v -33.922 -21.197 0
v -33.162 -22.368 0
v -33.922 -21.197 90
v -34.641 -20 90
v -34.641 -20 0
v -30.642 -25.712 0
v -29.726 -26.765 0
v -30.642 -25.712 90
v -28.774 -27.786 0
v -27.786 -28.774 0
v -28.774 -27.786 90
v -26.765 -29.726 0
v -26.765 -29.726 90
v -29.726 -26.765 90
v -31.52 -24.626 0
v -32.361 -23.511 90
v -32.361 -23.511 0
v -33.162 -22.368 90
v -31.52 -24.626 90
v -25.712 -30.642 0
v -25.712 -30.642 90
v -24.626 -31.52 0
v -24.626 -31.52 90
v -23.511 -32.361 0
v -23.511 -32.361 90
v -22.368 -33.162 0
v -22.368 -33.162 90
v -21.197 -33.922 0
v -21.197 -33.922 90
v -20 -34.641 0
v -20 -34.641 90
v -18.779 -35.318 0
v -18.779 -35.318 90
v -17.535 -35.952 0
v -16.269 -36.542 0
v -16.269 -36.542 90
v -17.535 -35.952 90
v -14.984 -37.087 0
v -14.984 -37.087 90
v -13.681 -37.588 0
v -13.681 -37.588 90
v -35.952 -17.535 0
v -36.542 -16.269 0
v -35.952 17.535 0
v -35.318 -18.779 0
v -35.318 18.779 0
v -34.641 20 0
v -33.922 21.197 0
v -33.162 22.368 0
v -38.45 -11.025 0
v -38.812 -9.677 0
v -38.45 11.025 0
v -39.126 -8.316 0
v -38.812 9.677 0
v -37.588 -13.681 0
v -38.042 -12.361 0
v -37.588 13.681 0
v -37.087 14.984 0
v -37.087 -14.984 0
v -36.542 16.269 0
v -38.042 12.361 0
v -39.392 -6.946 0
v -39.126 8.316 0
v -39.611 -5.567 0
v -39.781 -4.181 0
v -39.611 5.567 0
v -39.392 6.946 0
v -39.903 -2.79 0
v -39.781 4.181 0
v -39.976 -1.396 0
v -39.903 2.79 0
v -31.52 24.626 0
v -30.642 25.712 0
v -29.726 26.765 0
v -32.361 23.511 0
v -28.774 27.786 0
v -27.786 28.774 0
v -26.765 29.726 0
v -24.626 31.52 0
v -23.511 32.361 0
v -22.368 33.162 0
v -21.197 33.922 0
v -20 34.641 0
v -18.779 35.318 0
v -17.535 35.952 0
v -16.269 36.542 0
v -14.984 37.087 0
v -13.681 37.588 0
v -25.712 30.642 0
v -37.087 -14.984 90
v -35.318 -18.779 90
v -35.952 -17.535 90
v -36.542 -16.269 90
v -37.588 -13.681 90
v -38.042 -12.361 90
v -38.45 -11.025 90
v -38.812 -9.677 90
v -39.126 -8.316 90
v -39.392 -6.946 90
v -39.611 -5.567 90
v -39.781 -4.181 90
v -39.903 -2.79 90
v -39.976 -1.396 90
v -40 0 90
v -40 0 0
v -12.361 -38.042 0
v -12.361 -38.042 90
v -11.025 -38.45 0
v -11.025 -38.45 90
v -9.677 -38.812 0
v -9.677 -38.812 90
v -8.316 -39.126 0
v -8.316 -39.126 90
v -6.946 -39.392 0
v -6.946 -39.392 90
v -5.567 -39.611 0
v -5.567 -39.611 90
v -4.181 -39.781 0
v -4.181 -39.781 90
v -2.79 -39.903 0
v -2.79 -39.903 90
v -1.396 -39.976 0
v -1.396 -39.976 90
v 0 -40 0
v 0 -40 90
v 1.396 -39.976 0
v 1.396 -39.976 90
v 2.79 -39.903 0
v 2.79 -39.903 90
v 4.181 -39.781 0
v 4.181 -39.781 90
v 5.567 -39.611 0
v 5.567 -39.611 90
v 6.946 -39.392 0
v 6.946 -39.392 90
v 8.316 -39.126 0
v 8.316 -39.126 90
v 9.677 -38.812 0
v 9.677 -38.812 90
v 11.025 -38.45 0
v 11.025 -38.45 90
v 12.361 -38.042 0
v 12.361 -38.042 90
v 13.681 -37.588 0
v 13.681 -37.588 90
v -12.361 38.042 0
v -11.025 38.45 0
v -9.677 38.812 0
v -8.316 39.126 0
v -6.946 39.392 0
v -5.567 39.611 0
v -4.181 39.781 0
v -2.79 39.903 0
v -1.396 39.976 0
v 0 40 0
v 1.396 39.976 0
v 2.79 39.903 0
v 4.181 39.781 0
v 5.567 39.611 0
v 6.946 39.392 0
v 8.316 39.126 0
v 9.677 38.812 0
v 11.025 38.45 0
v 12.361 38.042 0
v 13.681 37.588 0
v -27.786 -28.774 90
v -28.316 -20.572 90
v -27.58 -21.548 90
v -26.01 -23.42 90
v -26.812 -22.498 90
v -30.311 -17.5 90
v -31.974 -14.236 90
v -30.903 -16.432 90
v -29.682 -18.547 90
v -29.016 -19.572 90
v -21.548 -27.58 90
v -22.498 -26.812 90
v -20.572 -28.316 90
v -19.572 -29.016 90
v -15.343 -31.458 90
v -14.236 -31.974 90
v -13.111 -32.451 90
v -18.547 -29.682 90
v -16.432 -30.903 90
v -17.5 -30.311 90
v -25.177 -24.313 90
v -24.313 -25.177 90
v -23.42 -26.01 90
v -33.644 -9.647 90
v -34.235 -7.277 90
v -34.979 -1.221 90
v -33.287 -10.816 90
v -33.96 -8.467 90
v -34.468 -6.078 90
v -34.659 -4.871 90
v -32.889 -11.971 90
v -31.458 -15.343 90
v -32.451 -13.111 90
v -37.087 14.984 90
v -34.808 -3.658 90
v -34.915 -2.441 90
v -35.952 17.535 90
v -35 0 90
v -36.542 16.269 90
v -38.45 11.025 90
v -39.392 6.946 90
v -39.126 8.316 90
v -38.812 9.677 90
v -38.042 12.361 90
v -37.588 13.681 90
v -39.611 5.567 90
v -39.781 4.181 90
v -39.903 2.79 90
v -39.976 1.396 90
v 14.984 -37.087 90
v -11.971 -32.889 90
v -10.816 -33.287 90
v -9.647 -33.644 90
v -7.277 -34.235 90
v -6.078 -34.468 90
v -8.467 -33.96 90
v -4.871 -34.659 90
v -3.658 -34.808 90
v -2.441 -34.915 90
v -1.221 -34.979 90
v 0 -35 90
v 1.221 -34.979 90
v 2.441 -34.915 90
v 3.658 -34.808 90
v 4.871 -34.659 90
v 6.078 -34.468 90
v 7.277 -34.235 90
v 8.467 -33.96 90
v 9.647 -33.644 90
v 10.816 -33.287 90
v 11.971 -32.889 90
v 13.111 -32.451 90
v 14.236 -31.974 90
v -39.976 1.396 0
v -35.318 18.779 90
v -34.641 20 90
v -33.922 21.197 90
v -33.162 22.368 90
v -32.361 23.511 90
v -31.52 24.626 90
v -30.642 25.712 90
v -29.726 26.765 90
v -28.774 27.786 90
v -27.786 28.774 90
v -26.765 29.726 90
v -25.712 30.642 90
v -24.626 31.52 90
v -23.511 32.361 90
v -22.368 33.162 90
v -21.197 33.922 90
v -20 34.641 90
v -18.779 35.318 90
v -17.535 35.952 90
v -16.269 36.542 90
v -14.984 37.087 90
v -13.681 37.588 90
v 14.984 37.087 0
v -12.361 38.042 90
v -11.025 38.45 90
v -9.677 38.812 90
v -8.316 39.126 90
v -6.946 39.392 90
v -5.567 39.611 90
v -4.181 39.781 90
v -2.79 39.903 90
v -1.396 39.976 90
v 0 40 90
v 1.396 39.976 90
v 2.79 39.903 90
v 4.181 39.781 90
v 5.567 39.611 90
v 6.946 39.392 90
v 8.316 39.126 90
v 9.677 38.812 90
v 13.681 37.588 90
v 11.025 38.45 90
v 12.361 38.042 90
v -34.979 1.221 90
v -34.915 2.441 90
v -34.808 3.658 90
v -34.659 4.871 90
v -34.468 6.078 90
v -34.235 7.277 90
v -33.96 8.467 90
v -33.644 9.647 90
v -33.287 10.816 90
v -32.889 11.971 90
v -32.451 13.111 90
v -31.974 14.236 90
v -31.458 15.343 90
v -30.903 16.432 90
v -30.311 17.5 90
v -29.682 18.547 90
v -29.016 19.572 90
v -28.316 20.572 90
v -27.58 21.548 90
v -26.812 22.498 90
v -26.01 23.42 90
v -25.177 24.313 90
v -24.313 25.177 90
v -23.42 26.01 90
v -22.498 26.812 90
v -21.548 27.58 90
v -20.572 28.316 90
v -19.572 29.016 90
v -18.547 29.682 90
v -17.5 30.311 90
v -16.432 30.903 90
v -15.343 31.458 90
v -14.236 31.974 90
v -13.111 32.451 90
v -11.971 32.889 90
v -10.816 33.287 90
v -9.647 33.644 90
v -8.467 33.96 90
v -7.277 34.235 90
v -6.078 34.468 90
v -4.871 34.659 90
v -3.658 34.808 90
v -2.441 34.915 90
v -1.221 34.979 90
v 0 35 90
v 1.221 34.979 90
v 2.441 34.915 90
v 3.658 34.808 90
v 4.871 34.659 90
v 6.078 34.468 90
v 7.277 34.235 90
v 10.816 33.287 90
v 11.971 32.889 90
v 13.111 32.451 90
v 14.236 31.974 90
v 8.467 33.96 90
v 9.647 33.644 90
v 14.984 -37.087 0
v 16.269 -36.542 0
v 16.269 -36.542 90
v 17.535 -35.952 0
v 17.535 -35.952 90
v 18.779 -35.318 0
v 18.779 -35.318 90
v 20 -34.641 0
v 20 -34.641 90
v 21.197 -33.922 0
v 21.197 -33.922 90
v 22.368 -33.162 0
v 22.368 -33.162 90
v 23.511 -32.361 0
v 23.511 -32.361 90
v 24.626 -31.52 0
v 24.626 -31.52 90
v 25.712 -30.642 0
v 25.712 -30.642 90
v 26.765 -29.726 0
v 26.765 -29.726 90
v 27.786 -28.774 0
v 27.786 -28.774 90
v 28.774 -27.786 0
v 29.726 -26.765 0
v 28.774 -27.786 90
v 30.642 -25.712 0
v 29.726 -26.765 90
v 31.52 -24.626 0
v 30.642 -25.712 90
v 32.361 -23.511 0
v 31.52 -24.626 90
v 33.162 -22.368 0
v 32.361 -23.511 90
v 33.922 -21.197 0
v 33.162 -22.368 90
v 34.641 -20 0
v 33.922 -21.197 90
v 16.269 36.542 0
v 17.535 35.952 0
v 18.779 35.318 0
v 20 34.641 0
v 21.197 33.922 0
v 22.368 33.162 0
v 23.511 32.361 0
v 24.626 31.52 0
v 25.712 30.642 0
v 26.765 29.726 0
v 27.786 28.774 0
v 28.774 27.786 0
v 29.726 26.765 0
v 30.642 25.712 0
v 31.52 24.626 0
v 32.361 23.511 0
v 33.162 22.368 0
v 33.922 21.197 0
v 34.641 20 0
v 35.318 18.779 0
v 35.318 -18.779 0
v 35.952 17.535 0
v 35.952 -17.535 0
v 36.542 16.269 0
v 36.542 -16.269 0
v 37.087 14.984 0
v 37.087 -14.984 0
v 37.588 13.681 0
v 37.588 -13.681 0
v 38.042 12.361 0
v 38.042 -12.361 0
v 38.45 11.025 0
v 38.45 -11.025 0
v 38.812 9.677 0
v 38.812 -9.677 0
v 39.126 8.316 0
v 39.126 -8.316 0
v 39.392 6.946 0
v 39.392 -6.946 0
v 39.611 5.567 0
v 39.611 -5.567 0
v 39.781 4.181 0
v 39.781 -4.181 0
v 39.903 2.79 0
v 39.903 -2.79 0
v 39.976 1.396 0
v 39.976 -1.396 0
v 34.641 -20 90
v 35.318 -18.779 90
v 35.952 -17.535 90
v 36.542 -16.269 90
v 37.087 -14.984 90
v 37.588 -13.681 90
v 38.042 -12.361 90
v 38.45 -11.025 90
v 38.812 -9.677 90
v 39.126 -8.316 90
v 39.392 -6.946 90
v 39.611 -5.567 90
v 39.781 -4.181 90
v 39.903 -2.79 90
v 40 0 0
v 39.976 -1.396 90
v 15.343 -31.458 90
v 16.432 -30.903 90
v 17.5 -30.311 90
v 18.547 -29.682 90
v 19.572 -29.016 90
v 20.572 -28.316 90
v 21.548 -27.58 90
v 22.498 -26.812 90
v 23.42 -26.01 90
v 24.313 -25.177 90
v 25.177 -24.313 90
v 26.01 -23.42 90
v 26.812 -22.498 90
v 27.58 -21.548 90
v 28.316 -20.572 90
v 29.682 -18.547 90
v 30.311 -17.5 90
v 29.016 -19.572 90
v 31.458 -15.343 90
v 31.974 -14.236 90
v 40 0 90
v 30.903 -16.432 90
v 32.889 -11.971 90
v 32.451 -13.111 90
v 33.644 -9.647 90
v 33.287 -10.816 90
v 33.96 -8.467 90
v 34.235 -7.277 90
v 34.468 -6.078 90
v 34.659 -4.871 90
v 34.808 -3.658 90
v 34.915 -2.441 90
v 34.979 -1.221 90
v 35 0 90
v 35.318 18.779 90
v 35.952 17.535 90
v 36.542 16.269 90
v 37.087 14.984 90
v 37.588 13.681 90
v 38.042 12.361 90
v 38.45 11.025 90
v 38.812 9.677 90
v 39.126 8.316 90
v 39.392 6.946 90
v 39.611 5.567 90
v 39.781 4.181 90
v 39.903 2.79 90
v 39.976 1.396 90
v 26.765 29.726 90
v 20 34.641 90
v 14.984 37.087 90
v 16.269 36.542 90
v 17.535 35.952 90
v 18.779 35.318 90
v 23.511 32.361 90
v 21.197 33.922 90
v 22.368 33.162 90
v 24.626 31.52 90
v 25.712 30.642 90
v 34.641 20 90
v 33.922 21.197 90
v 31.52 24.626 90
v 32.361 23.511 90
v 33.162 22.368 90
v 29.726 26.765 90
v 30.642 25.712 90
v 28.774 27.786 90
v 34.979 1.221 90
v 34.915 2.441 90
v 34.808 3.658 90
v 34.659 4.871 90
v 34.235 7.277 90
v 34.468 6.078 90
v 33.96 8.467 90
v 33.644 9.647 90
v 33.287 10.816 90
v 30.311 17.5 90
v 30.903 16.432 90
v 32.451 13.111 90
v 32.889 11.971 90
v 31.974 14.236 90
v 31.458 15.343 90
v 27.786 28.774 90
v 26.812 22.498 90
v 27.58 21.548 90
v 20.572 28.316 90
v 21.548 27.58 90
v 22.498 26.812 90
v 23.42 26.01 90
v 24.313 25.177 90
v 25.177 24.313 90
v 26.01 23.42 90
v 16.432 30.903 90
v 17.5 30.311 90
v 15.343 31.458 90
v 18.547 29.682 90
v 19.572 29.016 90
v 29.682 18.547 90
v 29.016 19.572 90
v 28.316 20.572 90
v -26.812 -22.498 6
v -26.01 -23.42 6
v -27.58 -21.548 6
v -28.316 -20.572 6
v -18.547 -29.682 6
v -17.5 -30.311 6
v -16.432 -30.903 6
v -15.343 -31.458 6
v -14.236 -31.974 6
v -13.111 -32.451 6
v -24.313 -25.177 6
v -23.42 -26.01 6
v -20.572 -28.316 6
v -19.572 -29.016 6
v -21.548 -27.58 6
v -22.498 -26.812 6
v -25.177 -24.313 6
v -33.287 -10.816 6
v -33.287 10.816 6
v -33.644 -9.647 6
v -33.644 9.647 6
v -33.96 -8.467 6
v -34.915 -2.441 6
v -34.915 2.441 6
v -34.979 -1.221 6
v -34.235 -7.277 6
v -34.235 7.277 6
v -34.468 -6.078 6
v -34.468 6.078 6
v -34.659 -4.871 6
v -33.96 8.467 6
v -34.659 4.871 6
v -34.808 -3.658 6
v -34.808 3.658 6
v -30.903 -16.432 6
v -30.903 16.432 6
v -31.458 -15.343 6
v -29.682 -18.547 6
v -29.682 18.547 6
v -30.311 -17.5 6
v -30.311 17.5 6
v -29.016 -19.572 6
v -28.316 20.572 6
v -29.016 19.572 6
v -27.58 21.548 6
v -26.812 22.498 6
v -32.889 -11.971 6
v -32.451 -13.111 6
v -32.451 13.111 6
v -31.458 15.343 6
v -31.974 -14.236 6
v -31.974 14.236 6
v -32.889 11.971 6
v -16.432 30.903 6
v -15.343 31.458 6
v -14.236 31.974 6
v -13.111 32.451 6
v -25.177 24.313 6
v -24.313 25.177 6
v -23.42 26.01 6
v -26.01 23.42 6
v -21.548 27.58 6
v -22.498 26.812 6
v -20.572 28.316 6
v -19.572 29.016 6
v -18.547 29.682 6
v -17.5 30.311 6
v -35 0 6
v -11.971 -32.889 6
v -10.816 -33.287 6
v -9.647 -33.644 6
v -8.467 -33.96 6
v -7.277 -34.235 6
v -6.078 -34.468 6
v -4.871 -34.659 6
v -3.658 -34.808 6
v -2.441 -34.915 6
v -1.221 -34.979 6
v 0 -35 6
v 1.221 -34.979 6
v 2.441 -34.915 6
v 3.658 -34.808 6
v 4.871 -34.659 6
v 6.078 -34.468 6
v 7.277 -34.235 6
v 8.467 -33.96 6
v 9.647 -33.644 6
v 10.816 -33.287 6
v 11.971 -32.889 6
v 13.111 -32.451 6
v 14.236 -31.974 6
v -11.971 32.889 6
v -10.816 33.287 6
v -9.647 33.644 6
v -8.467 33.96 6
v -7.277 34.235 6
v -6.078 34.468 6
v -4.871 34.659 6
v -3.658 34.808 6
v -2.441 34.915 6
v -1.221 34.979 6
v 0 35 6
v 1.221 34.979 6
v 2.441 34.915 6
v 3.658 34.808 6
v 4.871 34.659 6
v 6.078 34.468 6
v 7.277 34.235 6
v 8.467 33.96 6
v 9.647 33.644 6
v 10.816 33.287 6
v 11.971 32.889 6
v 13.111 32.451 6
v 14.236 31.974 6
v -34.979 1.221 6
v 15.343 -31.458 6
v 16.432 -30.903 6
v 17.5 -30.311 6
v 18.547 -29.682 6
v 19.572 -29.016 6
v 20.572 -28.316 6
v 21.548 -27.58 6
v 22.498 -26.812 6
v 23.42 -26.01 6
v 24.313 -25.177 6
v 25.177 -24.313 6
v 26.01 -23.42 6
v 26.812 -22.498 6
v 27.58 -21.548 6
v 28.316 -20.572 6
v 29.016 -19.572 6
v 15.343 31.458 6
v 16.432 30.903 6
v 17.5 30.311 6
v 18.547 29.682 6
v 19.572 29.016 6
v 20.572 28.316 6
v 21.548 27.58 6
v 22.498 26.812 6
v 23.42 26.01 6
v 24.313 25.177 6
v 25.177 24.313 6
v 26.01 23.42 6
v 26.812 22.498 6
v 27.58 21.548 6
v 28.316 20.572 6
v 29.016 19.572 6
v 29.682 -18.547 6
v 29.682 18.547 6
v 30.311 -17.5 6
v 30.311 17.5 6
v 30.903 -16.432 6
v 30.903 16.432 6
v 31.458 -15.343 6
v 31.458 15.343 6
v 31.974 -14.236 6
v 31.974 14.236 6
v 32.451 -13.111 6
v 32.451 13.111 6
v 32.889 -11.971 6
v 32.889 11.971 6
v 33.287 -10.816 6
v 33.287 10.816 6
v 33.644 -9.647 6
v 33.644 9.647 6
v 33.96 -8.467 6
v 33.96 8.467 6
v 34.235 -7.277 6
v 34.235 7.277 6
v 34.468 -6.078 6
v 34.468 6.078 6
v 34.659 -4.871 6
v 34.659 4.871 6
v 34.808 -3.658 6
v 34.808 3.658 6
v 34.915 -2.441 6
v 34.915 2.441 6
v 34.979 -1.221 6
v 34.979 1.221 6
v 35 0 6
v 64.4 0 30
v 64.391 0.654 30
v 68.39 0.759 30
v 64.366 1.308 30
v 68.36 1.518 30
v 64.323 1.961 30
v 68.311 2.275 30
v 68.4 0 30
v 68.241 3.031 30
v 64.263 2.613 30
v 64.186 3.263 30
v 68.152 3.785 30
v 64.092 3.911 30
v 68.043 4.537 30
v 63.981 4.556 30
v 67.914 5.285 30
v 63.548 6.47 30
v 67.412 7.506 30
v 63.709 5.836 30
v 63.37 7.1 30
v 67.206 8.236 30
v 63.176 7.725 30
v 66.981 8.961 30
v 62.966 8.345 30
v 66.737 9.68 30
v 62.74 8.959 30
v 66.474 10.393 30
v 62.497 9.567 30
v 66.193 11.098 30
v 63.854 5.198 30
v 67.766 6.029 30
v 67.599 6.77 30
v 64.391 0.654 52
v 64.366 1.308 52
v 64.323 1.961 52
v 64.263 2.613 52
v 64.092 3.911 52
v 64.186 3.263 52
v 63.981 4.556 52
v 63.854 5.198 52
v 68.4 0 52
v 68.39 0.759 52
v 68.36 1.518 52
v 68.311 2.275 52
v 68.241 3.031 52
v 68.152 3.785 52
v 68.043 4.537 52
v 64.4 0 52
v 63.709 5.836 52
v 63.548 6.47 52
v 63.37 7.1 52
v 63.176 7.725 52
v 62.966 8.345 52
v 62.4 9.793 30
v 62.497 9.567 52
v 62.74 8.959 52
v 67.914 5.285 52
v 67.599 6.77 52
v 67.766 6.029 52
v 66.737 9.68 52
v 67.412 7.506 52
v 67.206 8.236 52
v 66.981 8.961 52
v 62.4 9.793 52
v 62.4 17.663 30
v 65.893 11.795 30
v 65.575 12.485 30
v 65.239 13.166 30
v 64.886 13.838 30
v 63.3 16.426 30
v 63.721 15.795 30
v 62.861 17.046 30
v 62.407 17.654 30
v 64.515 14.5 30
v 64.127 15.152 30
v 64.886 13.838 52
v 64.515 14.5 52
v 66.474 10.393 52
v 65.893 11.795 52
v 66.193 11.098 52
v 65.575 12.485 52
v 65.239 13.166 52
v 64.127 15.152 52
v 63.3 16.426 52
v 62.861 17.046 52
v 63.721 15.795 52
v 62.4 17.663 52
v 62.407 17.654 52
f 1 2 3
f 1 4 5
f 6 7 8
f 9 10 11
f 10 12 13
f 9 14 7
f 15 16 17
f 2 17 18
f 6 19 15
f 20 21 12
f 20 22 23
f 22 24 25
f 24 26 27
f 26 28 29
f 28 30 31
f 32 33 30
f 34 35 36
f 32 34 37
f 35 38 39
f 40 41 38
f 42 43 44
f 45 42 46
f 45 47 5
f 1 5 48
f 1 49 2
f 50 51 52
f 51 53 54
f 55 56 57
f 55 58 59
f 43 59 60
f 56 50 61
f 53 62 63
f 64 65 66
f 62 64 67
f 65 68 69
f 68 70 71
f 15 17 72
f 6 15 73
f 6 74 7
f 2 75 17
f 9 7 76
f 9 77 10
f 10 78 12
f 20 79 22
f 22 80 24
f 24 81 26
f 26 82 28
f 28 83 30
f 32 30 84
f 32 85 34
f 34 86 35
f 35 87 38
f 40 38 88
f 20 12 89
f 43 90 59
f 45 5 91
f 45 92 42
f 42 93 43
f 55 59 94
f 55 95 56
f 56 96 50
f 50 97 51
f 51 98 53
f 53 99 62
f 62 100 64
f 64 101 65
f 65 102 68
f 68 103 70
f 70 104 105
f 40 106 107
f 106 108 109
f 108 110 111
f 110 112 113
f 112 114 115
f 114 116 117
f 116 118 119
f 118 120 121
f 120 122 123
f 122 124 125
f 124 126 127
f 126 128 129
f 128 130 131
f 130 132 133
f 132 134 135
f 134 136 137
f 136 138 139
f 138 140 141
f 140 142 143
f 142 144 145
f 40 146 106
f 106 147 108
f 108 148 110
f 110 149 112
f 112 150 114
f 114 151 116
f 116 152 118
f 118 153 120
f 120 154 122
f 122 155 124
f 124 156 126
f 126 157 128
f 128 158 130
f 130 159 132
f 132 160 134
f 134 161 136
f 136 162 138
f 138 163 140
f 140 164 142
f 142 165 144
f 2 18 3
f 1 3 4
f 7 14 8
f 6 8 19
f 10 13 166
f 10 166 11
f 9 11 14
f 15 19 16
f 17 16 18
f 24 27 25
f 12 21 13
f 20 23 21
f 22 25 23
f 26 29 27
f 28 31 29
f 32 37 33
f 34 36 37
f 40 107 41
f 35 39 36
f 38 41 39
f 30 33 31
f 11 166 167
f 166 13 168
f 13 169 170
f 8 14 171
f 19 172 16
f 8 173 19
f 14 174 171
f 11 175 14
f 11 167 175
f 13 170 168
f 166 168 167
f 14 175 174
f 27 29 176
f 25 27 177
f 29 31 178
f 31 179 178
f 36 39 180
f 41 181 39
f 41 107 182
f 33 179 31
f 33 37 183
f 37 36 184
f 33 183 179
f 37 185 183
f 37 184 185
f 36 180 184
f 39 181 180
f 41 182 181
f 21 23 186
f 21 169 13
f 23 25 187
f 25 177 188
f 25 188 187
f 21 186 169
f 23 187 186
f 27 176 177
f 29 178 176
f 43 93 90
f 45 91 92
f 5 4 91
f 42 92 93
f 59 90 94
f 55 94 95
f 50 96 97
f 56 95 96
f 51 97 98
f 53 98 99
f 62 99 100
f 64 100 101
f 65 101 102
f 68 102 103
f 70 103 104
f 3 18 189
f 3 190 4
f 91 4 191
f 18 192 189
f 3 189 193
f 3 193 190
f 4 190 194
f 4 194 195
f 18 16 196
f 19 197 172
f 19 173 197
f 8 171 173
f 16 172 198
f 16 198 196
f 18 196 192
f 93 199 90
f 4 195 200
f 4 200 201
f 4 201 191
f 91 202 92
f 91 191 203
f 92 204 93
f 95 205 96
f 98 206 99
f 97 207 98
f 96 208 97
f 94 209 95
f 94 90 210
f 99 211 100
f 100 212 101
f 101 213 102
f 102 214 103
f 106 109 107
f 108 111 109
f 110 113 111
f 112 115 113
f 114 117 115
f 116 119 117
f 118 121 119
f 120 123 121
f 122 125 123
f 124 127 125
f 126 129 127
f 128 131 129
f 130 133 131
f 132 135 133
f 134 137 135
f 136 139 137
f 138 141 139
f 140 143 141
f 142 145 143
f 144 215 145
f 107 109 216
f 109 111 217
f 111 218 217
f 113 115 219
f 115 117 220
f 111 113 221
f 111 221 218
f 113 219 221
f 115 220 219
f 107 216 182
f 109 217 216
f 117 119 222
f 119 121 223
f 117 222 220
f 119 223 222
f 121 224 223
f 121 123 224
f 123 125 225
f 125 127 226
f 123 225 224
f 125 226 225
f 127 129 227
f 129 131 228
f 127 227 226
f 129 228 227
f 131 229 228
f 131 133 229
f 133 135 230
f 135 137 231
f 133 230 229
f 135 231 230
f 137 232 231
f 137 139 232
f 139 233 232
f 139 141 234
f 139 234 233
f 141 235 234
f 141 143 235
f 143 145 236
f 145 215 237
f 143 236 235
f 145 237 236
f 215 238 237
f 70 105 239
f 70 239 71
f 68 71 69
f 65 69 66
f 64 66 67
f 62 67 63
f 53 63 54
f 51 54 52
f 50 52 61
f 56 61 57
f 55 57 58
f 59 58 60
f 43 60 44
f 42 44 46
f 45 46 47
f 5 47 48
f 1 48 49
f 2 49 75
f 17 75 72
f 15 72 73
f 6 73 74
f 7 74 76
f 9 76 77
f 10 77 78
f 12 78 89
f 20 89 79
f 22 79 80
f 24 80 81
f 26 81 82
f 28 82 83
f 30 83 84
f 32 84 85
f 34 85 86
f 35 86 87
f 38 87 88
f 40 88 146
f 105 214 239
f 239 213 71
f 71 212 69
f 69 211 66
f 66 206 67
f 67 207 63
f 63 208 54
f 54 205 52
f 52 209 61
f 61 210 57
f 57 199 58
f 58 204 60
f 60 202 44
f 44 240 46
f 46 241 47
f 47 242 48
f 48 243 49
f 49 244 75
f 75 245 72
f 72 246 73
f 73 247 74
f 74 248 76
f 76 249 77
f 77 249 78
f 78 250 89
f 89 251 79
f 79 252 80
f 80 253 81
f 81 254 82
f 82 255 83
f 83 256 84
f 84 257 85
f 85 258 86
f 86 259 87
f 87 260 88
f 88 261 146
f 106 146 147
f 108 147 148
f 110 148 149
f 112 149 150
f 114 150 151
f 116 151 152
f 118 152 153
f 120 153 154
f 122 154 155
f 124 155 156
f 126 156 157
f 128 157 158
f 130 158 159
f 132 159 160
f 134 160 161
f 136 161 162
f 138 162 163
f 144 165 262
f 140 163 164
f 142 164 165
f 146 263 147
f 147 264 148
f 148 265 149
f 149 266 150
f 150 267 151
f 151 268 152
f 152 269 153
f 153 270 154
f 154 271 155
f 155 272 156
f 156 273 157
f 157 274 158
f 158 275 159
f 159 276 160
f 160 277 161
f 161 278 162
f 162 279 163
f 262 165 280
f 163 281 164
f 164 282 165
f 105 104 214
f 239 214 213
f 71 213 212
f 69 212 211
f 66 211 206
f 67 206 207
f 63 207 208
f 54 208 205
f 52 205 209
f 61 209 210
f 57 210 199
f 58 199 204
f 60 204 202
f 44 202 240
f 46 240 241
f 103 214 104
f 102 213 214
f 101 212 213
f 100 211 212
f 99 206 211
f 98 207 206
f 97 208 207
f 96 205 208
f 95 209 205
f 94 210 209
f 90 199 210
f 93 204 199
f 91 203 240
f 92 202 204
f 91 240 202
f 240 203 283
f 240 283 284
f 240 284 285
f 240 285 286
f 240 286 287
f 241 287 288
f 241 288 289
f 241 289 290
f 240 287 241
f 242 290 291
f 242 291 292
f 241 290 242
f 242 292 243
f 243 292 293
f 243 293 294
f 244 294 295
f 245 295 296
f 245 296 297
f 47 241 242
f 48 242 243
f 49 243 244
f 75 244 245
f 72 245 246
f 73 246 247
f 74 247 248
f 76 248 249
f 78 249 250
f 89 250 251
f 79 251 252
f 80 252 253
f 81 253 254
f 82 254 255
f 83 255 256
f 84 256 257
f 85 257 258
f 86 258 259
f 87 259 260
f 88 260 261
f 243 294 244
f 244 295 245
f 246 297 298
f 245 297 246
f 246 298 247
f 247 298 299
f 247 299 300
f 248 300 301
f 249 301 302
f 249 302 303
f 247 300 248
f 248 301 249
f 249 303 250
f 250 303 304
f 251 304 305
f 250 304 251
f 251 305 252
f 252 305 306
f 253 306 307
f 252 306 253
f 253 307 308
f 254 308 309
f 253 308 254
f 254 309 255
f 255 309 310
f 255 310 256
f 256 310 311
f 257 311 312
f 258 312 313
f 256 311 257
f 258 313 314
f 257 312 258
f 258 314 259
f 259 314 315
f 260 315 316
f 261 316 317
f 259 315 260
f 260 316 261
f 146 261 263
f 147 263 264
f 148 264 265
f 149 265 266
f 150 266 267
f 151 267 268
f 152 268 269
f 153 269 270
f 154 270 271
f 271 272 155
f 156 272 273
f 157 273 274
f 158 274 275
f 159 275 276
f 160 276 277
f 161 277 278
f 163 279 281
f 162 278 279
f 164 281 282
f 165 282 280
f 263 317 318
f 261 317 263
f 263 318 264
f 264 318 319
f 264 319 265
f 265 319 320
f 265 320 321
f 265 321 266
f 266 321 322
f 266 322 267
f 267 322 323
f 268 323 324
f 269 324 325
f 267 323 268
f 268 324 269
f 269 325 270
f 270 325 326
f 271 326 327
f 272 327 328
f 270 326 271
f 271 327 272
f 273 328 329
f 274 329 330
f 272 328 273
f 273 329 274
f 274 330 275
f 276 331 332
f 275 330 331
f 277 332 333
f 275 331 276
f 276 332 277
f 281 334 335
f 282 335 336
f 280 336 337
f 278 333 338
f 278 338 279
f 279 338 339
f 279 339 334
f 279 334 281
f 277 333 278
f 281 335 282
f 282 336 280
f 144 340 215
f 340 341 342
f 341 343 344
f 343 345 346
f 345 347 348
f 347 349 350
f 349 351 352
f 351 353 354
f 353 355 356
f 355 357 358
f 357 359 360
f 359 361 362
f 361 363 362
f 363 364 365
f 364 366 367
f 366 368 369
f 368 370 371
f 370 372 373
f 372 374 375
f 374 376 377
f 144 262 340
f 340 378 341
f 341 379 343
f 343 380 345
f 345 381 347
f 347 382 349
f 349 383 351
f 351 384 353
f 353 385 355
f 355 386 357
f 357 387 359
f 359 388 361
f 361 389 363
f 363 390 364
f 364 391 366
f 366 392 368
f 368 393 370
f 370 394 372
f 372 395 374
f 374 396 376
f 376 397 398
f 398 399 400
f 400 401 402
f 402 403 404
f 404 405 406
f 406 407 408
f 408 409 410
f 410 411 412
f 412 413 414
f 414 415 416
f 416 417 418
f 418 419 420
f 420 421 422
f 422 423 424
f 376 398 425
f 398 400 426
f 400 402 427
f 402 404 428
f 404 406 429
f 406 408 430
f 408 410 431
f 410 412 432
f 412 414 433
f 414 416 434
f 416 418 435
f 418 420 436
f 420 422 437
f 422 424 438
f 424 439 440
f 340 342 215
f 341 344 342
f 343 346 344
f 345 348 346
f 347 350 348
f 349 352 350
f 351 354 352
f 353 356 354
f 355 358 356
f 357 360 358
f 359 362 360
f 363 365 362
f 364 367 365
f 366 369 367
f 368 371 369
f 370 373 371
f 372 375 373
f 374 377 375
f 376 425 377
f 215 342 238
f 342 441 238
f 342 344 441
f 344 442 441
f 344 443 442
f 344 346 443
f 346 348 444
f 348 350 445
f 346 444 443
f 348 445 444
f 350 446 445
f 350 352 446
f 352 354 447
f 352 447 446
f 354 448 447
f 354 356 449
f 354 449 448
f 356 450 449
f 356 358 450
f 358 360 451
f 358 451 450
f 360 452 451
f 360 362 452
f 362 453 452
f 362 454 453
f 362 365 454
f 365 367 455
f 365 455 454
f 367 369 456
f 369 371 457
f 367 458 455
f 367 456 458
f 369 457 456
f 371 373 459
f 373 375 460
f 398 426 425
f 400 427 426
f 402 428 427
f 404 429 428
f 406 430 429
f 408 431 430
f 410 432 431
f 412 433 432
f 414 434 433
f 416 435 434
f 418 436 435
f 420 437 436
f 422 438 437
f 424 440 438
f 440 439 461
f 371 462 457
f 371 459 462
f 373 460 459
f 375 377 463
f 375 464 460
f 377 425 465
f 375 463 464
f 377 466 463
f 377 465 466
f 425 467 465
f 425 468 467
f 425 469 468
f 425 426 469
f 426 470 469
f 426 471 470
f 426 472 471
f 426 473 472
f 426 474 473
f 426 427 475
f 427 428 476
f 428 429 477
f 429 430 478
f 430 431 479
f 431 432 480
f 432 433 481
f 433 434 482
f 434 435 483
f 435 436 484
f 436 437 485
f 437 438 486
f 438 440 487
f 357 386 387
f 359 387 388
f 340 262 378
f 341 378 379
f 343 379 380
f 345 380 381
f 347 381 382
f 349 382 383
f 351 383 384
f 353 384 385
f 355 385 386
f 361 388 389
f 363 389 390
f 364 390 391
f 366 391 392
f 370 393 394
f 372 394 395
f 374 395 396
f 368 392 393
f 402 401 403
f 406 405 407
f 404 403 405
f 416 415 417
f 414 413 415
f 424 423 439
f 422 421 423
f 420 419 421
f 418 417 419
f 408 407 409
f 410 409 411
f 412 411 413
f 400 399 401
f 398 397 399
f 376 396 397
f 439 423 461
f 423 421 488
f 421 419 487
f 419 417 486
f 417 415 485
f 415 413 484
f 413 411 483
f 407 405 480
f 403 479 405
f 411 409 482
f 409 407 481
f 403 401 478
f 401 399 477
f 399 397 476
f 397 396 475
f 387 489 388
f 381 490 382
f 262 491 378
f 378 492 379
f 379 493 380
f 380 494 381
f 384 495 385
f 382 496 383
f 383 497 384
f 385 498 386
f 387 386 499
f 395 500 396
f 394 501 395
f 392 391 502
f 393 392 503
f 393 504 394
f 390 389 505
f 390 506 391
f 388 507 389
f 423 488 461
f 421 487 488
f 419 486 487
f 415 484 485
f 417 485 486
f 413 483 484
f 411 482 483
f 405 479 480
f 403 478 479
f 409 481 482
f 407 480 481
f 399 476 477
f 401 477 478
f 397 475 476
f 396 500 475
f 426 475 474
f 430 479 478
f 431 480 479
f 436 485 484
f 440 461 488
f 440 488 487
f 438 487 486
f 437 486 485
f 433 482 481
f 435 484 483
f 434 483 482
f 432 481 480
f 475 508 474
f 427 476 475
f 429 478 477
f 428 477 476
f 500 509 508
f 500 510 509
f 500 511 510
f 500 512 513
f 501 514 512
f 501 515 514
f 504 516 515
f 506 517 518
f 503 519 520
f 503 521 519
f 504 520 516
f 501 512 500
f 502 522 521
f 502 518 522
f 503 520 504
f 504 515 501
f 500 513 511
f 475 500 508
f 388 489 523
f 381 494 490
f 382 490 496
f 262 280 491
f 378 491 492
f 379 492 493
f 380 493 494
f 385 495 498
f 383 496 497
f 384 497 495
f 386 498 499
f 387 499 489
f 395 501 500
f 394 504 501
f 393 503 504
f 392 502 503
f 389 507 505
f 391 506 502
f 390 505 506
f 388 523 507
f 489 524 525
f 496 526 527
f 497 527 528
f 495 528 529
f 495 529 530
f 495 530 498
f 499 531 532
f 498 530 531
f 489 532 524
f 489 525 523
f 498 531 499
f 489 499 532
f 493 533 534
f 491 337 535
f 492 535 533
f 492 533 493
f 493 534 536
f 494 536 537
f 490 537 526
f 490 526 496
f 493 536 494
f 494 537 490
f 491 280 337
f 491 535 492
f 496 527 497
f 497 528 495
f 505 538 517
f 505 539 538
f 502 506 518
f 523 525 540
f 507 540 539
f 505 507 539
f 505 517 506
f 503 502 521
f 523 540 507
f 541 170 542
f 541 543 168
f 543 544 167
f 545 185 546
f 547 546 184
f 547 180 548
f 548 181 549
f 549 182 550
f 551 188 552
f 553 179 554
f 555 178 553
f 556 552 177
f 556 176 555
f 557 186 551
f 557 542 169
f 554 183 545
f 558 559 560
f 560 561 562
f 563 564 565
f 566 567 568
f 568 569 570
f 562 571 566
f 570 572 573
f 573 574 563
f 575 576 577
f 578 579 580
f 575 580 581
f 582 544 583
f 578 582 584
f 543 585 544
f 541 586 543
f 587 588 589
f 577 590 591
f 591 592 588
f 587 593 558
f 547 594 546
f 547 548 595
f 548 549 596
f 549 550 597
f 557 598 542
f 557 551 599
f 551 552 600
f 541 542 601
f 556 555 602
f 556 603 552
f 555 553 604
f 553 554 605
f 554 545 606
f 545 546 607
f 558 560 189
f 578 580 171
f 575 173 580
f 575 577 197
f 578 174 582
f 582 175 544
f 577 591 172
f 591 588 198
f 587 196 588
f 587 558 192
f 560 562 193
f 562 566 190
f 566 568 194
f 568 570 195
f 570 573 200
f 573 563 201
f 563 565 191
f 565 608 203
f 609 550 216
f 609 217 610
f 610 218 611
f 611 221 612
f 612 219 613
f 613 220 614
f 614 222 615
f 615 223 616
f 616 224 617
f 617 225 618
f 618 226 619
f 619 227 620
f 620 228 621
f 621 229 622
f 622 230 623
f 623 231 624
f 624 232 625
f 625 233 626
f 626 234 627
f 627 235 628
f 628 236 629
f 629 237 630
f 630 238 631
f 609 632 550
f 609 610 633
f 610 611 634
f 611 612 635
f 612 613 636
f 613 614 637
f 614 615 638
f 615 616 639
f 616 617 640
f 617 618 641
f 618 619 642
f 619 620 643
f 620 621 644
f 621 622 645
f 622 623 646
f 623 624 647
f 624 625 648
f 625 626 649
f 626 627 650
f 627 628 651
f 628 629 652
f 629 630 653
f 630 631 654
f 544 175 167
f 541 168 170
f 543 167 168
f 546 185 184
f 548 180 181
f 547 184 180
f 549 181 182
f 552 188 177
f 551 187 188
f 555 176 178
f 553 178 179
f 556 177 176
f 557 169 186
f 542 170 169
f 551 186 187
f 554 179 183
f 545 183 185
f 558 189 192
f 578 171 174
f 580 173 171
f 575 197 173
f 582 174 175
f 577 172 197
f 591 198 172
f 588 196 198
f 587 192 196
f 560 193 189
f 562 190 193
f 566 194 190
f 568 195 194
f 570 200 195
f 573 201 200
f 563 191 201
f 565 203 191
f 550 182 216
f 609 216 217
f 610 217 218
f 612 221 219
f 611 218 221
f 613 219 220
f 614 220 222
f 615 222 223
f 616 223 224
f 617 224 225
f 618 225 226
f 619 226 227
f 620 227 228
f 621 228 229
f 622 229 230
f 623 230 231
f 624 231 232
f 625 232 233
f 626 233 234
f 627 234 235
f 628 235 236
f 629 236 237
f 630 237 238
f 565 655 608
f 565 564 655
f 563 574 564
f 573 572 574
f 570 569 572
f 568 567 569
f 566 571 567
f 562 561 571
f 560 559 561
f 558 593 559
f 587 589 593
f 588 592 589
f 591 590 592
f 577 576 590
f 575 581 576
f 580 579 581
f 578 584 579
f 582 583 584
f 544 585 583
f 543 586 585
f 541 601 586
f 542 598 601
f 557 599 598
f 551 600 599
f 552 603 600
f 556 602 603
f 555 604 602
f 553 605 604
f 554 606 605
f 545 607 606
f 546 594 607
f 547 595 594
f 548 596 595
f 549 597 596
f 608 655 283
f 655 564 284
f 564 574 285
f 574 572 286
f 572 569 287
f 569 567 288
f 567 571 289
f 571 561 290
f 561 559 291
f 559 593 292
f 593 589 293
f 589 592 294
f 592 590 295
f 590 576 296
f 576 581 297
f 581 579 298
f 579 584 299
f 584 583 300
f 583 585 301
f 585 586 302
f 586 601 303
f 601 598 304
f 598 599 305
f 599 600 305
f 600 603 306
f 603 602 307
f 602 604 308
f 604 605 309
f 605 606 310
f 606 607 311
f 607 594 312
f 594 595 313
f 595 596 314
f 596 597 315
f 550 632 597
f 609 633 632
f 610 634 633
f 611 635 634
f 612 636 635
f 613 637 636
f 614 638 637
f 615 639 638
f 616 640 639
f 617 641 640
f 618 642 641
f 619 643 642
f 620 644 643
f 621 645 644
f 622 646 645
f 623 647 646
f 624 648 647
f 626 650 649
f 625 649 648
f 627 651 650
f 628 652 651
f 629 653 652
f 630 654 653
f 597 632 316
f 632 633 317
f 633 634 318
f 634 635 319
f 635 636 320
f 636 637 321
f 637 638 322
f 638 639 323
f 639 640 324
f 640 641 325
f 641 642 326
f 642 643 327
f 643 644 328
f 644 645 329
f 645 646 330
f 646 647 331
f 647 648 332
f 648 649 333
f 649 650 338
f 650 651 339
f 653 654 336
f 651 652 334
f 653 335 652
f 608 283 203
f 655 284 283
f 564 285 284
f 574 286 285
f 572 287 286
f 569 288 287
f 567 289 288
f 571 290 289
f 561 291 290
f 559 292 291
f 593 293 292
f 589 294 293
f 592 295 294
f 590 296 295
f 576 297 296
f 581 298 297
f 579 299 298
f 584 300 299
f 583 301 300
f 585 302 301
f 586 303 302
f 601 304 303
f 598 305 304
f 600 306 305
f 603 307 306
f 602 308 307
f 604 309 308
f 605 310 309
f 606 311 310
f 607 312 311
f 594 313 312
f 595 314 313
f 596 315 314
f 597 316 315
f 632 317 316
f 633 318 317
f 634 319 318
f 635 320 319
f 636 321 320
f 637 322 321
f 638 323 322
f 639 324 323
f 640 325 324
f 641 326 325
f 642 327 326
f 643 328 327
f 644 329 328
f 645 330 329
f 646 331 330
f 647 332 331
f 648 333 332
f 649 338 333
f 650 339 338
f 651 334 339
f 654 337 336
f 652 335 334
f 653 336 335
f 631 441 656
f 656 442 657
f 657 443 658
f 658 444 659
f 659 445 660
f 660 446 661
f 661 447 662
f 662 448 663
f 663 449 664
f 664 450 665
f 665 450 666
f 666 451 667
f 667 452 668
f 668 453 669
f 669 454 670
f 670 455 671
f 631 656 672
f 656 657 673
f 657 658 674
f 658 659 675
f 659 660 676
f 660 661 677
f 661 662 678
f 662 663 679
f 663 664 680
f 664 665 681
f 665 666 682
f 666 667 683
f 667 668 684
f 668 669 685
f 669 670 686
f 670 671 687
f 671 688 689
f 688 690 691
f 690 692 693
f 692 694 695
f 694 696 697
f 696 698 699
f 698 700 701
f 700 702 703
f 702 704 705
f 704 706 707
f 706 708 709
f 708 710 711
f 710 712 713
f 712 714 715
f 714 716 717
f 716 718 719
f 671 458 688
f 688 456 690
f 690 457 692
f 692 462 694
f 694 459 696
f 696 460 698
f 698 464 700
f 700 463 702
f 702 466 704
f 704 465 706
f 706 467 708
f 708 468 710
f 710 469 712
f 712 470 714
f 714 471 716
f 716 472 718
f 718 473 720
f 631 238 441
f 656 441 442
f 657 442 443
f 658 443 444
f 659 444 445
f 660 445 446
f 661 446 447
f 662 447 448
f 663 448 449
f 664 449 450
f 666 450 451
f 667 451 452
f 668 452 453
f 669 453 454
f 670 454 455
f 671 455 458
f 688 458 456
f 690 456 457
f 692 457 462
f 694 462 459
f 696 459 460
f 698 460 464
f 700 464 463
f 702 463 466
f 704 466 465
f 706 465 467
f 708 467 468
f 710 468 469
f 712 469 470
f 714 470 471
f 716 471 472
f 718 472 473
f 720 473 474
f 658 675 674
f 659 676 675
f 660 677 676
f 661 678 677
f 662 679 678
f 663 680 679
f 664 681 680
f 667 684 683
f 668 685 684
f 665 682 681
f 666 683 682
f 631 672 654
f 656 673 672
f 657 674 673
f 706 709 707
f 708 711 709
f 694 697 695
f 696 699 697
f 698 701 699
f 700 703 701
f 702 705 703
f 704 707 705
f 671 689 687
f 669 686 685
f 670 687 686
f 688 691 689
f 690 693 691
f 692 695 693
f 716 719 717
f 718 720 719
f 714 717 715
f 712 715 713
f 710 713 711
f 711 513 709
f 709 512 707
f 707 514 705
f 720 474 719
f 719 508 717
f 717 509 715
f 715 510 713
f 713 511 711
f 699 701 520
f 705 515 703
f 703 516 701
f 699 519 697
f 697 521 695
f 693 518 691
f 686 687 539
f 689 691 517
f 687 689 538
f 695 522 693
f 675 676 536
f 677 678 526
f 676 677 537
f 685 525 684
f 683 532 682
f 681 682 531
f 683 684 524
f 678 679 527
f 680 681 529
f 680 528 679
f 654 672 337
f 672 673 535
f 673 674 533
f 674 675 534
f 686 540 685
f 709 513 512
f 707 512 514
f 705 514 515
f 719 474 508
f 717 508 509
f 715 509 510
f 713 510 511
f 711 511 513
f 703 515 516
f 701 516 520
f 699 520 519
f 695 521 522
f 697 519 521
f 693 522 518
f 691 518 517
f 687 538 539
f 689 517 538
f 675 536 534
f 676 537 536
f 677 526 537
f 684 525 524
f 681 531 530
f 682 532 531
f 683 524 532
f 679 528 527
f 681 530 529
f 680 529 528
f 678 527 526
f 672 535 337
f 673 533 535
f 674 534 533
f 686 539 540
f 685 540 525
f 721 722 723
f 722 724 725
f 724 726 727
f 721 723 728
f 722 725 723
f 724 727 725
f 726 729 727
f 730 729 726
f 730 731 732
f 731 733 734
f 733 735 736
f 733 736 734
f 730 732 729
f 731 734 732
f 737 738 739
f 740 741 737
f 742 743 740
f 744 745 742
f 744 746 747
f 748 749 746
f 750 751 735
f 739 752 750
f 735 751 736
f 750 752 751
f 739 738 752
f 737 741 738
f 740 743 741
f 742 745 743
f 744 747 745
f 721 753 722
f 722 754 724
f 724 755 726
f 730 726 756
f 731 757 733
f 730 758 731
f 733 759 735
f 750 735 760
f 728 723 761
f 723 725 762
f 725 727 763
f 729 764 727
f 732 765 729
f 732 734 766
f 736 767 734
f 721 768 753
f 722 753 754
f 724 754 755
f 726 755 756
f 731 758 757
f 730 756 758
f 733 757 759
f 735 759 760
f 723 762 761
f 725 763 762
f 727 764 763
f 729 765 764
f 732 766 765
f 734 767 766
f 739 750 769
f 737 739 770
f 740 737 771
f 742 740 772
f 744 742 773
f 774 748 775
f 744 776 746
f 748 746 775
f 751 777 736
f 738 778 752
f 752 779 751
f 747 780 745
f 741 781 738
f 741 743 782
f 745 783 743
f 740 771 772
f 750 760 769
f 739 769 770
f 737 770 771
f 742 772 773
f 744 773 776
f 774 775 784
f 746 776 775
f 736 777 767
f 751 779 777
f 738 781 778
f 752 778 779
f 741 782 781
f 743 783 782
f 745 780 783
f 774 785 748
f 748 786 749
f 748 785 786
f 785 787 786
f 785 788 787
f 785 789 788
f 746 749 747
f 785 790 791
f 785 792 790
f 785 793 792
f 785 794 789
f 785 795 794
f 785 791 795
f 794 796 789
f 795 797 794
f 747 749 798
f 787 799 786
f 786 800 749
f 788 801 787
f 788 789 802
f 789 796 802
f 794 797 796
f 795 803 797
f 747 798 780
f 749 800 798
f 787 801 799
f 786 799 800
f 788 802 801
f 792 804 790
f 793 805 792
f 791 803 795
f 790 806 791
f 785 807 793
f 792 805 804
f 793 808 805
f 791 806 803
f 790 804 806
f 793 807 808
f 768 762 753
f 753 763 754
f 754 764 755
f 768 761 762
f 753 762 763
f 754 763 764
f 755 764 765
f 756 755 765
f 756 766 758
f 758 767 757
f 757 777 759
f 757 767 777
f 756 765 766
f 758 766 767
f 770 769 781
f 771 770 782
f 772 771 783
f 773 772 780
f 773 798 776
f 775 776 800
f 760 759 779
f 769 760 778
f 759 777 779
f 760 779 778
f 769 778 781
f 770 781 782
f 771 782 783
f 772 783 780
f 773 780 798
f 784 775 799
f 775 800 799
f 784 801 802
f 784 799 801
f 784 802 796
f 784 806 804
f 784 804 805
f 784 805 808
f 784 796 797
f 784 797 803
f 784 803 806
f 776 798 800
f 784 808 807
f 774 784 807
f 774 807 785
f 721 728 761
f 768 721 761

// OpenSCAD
// Mug (OD 80, ID 70, wall 5, height 90, bottom thickness 6)
// +X side only D-handle (hollow), manifold-safe union

$fn = 180;

// --- Mug params ---
outer_d   = 80;
inner_d   = 70;
h_mug     = 90;
t_bottom  = 6;

mug_outer_r = outer_d/2; // 40
mug_inner_r = inner_d/2; // 35

// --- Handle params ---
handle_inner_w = 25;     // inner space width (Y)
handle_inner_h = 30;     // inner space height (Z)
handle_center_z = h_mug/2; // around middle

handle_depth = 22;       // extrusion depth along +X
handle_shell = 4;        // handle shell thickness (radial in YZ)

// D cross-section definition in YZ:
// - D is "outer half-circle + flat line" (flat at Y = 0, bulge to +Y)
// - Inner void is another D scaled by handle_shell
// - Then overall handle is clipped by a rectangle to ensure exact void (Y width, Z height).
module d_shell_2d(r_outer, r_inner, y_void_max, z_void_min, z_void_max) {
  // 2D D surfaces (in YZ plane):
  // Outer D: semicircle bulging +Y with flat at Y=0
  // Inner D: semicircle bulging +Y with flat at Y=0
  module semicircle_with_flat_2d(r) {
    // returns polygon in (Y,Z), flat edge at Y=0, centered in Z around 0, bulge +Y
    pts = [
      for (i=[0:120])
        let(
          a = -90 + i*(180/120),
          y = r*cos(a),  // 0..r
          z = r*sin(a)   // -r..r
        )
        [y,z]
    ];
    // close the flat edge
    polygon(concat(pts, [[0,-r],[0,r]]));
  }

  // Build 2D handle shell as difference of outer minus inner,
  // then clip in Y and Z to get intended void dimensions.
  // Note: clipping is performed after 3D extrusion in the caller using a box.
  difference() {
    semicircle_with_flat_2d(r_outer);
    semicircle_with_flat_2d(r_inner);
  }
}

// 3D D-handle shell with exact hollow void size.
// Local coordinate system:
// - Mug axis: X
// - Y is tangential around mug
// - Z is vertical
// Local origin for handle placement: at (x = mug_outer_r) plane will be handled outside.
module handle_d() {
  // We set inner D semicircle radius so that its max width matches handle_inner_w.
  // For a semicircle with flat at Y=0, the bulge extent in Y equals radius.
  // So bulge extent should be handle_inner_w. That means r_inner = handle_inner_w.
  // But we also need a rectangular hole width; we'll clip hole exactly anyway.
  // We'll use r_inner = handle_inner_w/2 only if void width is measured flat-to-flat.
  // The prompt states "幅25mm" for the inner space; typical interpretation here:
  // the maximum Y spread equals 25. We'll satisfy that by using r_inner=25.
  r_inner = handle_inner_w;
  r_outer = r_inner + handle_shell;

  // Z void extents:
  z0 = handle_center_z - handle_inner_h/2;
  z1 = handle_center_z + handle_inner_h/2;

  // Local Z centered at 0 for D shapes; we will shift the local geometry by z0 later.
  // Create shell in local coordinates where Z center=0.
  // Then cut exact Z range and Y range using boxes.

  difference() {
    // Outer shell extruded along +X from x=0..handle_depth
    translate([0,0,z0])
      linear_extrude(height=handle_depth, center=false)
        d_shell_2d(r_outer=r_outer, r_inner=r_inner,
                   y_void_max=handle_inner_w,
                   z_void_min=z0, z_void_max=z1);

    // Inner void exact cut: subtract rectangle "void window" from within the D shell
    // so that interior space is height 30 and width 25.
    // We'll cut in a way that results in a D-shaped cavity (semi-circle + flat)
    // but bounded to the requested dimensions.
    translate([-1, -100, z0 - 0.5])
      cube([handle_depth + 2, 200, handle_inner_h + 1], center=false);

    // Additionally, ensure the handle cavity doesn't create negative-Y extension beyond flat side.
    // (Flat side at Y=0 in the D cross-section.)
    // Cut everything at Y<0 within the handle depth.
    translate([-1, -100, z0 - 0.5])
      cube([handle_depth + 2, 100, handle_inner_h + 1], center=false);
  }
}

// Mug body (solid cup with hollow interior)
module mug_body() {
  difference() {
    cylinder(d=outer_d, h=h_mug, center=false);
    // Subtract inner cylinder leaving bottom thickness t_bottom
    translate([0,0,t_bottom])
      cylinder(d=inner_d, h=h_mug - t_bottom, center=false);
  }
}

module mug_with_handle() {
  // Place handle on +X side only.
  // We position handle starting at x = mug_outer_r - small_eps so it unions reliably.
  // Then we clip to x>=mug_outer_r to avoid showing on -X.
  small_eps = 0.6;

  union() {
    mug_body();

    // Handle placement:
    // local handle_d() is built with x from 0..handle_depth.
    // We'll translate it so that x=0 is at the mug outer surface plane (x=mug_outer_r).
    translate([mug_outer_r - small_eps, 0, 0])
      intersection() {
        handle_d();
        // Keep only +X side region
        translate([-(mug_outer_r - small_eps), 0, 0])
          cube([mug_outer_r*2, 200, h_mug + 60], center=false);
      }
  }
}

// Ensure manifoldness by using a single union at top level
mug_with_handle();
